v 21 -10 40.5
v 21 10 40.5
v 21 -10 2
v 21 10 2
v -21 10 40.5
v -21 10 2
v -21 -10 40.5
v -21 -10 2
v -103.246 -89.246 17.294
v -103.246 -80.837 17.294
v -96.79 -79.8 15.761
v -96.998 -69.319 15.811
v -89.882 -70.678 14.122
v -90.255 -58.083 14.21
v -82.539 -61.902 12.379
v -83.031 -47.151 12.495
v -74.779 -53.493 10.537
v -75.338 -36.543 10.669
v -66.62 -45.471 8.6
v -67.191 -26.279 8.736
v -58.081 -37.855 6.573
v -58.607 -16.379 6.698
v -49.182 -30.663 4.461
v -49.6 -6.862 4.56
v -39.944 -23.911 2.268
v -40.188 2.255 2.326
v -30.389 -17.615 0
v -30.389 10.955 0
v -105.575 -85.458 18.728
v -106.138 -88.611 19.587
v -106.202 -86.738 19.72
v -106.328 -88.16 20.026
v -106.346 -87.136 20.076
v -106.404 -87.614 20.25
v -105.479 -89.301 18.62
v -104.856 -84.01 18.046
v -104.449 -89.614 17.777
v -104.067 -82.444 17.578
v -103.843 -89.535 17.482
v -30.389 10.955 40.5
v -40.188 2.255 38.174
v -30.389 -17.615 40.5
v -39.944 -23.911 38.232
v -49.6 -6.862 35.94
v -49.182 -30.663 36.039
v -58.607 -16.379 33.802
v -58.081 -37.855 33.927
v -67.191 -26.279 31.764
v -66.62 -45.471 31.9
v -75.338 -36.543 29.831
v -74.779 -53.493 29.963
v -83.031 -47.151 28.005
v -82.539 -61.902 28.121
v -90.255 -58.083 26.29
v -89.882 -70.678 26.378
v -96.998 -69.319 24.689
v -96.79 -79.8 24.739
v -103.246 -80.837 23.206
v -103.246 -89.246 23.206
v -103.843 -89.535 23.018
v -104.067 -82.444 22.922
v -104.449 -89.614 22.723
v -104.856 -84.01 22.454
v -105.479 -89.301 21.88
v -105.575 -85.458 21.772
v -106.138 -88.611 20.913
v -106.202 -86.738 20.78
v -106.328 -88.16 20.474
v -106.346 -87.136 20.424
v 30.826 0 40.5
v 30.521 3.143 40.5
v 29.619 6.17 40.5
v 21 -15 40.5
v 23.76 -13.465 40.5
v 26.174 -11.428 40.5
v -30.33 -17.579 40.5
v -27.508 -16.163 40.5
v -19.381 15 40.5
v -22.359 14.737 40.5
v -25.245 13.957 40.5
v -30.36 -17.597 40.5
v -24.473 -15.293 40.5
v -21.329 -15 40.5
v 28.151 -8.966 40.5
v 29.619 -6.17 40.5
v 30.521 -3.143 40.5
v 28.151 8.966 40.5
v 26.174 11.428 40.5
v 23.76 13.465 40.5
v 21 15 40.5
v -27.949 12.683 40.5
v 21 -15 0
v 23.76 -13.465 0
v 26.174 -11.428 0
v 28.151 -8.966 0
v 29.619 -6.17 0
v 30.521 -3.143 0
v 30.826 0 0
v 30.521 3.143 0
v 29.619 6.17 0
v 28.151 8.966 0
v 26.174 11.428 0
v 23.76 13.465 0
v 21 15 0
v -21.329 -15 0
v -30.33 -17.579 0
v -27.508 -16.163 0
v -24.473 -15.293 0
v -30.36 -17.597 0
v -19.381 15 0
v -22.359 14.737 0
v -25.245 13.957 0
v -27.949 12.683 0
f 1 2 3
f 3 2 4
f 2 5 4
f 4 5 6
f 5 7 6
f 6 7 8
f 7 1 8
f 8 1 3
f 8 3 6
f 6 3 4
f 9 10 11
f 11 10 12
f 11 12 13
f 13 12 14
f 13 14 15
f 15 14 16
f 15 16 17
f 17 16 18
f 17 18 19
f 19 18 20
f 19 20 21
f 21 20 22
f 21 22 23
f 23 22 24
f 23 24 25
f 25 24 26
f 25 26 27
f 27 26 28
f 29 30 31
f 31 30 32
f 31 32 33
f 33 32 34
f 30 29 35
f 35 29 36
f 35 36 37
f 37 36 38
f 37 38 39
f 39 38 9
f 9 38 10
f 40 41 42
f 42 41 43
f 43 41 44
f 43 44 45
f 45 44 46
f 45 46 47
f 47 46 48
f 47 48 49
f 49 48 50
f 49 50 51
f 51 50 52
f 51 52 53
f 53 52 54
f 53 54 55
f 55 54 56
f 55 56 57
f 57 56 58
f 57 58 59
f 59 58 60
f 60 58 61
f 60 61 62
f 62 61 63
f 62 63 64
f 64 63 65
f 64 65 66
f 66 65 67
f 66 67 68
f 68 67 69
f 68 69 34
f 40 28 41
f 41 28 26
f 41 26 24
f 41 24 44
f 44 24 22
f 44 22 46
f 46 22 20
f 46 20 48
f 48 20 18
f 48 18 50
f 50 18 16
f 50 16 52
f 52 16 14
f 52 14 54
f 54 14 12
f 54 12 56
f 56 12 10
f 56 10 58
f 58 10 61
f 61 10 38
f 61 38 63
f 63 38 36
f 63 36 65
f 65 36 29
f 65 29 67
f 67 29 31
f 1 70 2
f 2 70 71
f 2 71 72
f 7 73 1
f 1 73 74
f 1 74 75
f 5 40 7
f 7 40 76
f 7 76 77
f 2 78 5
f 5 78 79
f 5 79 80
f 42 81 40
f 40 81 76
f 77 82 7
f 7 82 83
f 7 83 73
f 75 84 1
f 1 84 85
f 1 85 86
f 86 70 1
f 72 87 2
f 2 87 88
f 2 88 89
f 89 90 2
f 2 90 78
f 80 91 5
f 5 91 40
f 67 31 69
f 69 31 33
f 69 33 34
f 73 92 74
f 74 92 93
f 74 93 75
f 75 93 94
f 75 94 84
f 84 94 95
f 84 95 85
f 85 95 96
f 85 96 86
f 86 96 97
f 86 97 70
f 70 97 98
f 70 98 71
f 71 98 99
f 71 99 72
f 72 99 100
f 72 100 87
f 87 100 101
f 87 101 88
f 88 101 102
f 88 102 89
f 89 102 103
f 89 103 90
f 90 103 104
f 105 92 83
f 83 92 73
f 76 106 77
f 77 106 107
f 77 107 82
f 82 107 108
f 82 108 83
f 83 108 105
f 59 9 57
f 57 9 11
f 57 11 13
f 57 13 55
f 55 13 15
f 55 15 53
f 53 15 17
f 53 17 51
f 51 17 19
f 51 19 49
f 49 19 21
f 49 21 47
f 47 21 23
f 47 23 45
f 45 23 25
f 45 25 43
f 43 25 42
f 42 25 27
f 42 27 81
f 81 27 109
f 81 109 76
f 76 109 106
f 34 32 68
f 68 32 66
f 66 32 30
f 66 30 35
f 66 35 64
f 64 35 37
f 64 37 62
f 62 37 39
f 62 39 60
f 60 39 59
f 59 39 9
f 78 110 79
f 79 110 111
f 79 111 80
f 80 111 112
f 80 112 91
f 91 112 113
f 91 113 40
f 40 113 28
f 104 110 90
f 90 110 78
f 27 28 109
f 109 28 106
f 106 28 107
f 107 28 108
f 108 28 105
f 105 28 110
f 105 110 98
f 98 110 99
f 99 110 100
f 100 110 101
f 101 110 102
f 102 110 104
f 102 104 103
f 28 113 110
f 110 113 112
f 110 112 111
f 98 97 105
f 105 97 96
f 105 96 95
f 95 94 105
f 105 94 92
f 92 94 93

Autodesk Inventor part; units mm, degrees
ref_plane "YZ Plane" through (0, 0, 0) normal (1, 0, 0) x (0, 1, 0)
ref_plane "XZ Plane" through (0, 0, 0) normal (0, 1, 0) x (-1, 0, 0)
ref_plane "XY Plane" through (0, 0, 0) normal (0, 0, 1) x (1, 0, 0)
sketch "Sketch1" plane through (0, 0, 0) normal (0, 0, 1) x (1, 0, 0)
  line L0 (-21, 10) -> (21, 10)
  line L1 (21, 10) -> (21, -10)
  line L2 (21, -10) -> (-21, -10)
  line L3 (-21, -10) -> (-21, 10)
  line L4 (21, 15) -> (-19.3814, 15)
  line L5 (21, -15) -> (-21.3289, -15)
  arc A0 (-30.3889, 10.9551) -> (-106.2021, -86.7378) centre (164.8345, -218.8085) ccw
  arc A1 (-106.2021, -86.7378) -> (-103.2462, -89.2462) centre (-104.4035, -87.6142) ccw
  arc A2 (-30.3302, -17.5786) -> (-103.2462, -89.2462) centre (94.391, -217.3993) ccw
  arc A3 (-19.3814, 15) -> (-30.3889, 10.9551) centre (-19.3814, -2) ccw
  arc A4 (-21.3289, -15) -> (-30.3302, -17.5786) centre (-21.3289, -32) ccw
  arc A5 (21, -15) -> (21, 15) centre (14.4642, 0) ccw
  point P0 (0, 0)
  point P1 (-21, 0)
  point P2 (-26.1005, -15)
  point P3 (-25.5259, 15)
  dimension "d0" = 42
  dimension "d1" = 20
  dimension "d2" = 10
  dimension "d3" = 21
  dimension "d15" = 301.502
  dimension "d16" = 235.5497
  dimension "d17" = 17
extrude "Extrusion1" add sketch "Sketch1" along normal blind 40.5 contours L0 L1 L2 L3 | A5 L5 A4 A2 A1 A0 A3 L4
sketch "Sketch2" plane through (-19.3814, 15, 0) normal (0, 1, 0) x (1, 0, 0)
  line L0 (0, 0) -> (0, -40.5) projected
  line L1 (0, -20.25) -> (-86.8207, -20.25)
  line L2 (-86.8207, 0) -> (-86.8207, -40.5) projected
  line L3 (-11.0075, 0) -> (0, 0) projected
  line L4 (-11.0075, -40.5) -> (0, -40.5) projected
  line L5 (-83.8648, 0) -> (-83.8648, -40.5) projected
  line L6 (-83.8648, -20.25) -> (-83.8648, -23.206)
  line L7 (-83.8648, -23.206) -> (-11.0075, -40.5)
  line L8 (-87.0229, 0) -> (-87.0229, -40.5) projected
  arc A0 (-87.0229, -20.25) -> (-83.8648, -23.206) centre (-82.8584, -18.9658) ccw
  line L9 (-83.8648, -17.294) -> (-11.0075, 0)
  arc A1 (-83.8648, -17.294) -> (-87.0229, -20.25) centre (-82.8584, -21.5342) ccw
  line L10 (-11.0075, -40.5) -> (-87.0229, -40.5)
  line L11 (-11.0075, 0) -> (-87.0229, 0)
  line L12 (-87.0229, -40.5) -> (-87.0229, 0)
  point P0 (19.3814, 0)
  dimension "d19" = 2.956
extrude "Extrusion2" cut sketch "Sketch2" against normal through all contours L9 L5 L11 | A1 L2 L11 L5 | L10 L5 L7 | L5 L10 L2 A0 | A1 L8 L11 L2 | L2 L10 L8 A0
sketch "Sketch3" plane through (0, 0, 40.5) normal (0, 0, 1) x (1, 0, 0)
  line L0 (-21.3289, -15) -> (21, -15) projected
  line L1 (21, 15) -> (21, -15)
  line L2 (21, 0) -> (-21, 0)
  line L3 (-21, 0) -> (-21, 10)
  line L4 (-21, 10) -> (21, 10)
  line L5 (21, 10) -> (21, -10)
  line L6 (21, -10) -> (-21, -10)
  line L7 (-21, -10) -> (-21, 10)
  point P0 (0, 0)
  dimension "d22" = 42
  dimension "d23" = 10
  dimension "d24" = 42
  dimension "d25" = 20
extrude "Extrusion3" cut sketch "Sketch3" against normal blind 38.5
properties part number "Spider_Robot_Tibia_V1"
